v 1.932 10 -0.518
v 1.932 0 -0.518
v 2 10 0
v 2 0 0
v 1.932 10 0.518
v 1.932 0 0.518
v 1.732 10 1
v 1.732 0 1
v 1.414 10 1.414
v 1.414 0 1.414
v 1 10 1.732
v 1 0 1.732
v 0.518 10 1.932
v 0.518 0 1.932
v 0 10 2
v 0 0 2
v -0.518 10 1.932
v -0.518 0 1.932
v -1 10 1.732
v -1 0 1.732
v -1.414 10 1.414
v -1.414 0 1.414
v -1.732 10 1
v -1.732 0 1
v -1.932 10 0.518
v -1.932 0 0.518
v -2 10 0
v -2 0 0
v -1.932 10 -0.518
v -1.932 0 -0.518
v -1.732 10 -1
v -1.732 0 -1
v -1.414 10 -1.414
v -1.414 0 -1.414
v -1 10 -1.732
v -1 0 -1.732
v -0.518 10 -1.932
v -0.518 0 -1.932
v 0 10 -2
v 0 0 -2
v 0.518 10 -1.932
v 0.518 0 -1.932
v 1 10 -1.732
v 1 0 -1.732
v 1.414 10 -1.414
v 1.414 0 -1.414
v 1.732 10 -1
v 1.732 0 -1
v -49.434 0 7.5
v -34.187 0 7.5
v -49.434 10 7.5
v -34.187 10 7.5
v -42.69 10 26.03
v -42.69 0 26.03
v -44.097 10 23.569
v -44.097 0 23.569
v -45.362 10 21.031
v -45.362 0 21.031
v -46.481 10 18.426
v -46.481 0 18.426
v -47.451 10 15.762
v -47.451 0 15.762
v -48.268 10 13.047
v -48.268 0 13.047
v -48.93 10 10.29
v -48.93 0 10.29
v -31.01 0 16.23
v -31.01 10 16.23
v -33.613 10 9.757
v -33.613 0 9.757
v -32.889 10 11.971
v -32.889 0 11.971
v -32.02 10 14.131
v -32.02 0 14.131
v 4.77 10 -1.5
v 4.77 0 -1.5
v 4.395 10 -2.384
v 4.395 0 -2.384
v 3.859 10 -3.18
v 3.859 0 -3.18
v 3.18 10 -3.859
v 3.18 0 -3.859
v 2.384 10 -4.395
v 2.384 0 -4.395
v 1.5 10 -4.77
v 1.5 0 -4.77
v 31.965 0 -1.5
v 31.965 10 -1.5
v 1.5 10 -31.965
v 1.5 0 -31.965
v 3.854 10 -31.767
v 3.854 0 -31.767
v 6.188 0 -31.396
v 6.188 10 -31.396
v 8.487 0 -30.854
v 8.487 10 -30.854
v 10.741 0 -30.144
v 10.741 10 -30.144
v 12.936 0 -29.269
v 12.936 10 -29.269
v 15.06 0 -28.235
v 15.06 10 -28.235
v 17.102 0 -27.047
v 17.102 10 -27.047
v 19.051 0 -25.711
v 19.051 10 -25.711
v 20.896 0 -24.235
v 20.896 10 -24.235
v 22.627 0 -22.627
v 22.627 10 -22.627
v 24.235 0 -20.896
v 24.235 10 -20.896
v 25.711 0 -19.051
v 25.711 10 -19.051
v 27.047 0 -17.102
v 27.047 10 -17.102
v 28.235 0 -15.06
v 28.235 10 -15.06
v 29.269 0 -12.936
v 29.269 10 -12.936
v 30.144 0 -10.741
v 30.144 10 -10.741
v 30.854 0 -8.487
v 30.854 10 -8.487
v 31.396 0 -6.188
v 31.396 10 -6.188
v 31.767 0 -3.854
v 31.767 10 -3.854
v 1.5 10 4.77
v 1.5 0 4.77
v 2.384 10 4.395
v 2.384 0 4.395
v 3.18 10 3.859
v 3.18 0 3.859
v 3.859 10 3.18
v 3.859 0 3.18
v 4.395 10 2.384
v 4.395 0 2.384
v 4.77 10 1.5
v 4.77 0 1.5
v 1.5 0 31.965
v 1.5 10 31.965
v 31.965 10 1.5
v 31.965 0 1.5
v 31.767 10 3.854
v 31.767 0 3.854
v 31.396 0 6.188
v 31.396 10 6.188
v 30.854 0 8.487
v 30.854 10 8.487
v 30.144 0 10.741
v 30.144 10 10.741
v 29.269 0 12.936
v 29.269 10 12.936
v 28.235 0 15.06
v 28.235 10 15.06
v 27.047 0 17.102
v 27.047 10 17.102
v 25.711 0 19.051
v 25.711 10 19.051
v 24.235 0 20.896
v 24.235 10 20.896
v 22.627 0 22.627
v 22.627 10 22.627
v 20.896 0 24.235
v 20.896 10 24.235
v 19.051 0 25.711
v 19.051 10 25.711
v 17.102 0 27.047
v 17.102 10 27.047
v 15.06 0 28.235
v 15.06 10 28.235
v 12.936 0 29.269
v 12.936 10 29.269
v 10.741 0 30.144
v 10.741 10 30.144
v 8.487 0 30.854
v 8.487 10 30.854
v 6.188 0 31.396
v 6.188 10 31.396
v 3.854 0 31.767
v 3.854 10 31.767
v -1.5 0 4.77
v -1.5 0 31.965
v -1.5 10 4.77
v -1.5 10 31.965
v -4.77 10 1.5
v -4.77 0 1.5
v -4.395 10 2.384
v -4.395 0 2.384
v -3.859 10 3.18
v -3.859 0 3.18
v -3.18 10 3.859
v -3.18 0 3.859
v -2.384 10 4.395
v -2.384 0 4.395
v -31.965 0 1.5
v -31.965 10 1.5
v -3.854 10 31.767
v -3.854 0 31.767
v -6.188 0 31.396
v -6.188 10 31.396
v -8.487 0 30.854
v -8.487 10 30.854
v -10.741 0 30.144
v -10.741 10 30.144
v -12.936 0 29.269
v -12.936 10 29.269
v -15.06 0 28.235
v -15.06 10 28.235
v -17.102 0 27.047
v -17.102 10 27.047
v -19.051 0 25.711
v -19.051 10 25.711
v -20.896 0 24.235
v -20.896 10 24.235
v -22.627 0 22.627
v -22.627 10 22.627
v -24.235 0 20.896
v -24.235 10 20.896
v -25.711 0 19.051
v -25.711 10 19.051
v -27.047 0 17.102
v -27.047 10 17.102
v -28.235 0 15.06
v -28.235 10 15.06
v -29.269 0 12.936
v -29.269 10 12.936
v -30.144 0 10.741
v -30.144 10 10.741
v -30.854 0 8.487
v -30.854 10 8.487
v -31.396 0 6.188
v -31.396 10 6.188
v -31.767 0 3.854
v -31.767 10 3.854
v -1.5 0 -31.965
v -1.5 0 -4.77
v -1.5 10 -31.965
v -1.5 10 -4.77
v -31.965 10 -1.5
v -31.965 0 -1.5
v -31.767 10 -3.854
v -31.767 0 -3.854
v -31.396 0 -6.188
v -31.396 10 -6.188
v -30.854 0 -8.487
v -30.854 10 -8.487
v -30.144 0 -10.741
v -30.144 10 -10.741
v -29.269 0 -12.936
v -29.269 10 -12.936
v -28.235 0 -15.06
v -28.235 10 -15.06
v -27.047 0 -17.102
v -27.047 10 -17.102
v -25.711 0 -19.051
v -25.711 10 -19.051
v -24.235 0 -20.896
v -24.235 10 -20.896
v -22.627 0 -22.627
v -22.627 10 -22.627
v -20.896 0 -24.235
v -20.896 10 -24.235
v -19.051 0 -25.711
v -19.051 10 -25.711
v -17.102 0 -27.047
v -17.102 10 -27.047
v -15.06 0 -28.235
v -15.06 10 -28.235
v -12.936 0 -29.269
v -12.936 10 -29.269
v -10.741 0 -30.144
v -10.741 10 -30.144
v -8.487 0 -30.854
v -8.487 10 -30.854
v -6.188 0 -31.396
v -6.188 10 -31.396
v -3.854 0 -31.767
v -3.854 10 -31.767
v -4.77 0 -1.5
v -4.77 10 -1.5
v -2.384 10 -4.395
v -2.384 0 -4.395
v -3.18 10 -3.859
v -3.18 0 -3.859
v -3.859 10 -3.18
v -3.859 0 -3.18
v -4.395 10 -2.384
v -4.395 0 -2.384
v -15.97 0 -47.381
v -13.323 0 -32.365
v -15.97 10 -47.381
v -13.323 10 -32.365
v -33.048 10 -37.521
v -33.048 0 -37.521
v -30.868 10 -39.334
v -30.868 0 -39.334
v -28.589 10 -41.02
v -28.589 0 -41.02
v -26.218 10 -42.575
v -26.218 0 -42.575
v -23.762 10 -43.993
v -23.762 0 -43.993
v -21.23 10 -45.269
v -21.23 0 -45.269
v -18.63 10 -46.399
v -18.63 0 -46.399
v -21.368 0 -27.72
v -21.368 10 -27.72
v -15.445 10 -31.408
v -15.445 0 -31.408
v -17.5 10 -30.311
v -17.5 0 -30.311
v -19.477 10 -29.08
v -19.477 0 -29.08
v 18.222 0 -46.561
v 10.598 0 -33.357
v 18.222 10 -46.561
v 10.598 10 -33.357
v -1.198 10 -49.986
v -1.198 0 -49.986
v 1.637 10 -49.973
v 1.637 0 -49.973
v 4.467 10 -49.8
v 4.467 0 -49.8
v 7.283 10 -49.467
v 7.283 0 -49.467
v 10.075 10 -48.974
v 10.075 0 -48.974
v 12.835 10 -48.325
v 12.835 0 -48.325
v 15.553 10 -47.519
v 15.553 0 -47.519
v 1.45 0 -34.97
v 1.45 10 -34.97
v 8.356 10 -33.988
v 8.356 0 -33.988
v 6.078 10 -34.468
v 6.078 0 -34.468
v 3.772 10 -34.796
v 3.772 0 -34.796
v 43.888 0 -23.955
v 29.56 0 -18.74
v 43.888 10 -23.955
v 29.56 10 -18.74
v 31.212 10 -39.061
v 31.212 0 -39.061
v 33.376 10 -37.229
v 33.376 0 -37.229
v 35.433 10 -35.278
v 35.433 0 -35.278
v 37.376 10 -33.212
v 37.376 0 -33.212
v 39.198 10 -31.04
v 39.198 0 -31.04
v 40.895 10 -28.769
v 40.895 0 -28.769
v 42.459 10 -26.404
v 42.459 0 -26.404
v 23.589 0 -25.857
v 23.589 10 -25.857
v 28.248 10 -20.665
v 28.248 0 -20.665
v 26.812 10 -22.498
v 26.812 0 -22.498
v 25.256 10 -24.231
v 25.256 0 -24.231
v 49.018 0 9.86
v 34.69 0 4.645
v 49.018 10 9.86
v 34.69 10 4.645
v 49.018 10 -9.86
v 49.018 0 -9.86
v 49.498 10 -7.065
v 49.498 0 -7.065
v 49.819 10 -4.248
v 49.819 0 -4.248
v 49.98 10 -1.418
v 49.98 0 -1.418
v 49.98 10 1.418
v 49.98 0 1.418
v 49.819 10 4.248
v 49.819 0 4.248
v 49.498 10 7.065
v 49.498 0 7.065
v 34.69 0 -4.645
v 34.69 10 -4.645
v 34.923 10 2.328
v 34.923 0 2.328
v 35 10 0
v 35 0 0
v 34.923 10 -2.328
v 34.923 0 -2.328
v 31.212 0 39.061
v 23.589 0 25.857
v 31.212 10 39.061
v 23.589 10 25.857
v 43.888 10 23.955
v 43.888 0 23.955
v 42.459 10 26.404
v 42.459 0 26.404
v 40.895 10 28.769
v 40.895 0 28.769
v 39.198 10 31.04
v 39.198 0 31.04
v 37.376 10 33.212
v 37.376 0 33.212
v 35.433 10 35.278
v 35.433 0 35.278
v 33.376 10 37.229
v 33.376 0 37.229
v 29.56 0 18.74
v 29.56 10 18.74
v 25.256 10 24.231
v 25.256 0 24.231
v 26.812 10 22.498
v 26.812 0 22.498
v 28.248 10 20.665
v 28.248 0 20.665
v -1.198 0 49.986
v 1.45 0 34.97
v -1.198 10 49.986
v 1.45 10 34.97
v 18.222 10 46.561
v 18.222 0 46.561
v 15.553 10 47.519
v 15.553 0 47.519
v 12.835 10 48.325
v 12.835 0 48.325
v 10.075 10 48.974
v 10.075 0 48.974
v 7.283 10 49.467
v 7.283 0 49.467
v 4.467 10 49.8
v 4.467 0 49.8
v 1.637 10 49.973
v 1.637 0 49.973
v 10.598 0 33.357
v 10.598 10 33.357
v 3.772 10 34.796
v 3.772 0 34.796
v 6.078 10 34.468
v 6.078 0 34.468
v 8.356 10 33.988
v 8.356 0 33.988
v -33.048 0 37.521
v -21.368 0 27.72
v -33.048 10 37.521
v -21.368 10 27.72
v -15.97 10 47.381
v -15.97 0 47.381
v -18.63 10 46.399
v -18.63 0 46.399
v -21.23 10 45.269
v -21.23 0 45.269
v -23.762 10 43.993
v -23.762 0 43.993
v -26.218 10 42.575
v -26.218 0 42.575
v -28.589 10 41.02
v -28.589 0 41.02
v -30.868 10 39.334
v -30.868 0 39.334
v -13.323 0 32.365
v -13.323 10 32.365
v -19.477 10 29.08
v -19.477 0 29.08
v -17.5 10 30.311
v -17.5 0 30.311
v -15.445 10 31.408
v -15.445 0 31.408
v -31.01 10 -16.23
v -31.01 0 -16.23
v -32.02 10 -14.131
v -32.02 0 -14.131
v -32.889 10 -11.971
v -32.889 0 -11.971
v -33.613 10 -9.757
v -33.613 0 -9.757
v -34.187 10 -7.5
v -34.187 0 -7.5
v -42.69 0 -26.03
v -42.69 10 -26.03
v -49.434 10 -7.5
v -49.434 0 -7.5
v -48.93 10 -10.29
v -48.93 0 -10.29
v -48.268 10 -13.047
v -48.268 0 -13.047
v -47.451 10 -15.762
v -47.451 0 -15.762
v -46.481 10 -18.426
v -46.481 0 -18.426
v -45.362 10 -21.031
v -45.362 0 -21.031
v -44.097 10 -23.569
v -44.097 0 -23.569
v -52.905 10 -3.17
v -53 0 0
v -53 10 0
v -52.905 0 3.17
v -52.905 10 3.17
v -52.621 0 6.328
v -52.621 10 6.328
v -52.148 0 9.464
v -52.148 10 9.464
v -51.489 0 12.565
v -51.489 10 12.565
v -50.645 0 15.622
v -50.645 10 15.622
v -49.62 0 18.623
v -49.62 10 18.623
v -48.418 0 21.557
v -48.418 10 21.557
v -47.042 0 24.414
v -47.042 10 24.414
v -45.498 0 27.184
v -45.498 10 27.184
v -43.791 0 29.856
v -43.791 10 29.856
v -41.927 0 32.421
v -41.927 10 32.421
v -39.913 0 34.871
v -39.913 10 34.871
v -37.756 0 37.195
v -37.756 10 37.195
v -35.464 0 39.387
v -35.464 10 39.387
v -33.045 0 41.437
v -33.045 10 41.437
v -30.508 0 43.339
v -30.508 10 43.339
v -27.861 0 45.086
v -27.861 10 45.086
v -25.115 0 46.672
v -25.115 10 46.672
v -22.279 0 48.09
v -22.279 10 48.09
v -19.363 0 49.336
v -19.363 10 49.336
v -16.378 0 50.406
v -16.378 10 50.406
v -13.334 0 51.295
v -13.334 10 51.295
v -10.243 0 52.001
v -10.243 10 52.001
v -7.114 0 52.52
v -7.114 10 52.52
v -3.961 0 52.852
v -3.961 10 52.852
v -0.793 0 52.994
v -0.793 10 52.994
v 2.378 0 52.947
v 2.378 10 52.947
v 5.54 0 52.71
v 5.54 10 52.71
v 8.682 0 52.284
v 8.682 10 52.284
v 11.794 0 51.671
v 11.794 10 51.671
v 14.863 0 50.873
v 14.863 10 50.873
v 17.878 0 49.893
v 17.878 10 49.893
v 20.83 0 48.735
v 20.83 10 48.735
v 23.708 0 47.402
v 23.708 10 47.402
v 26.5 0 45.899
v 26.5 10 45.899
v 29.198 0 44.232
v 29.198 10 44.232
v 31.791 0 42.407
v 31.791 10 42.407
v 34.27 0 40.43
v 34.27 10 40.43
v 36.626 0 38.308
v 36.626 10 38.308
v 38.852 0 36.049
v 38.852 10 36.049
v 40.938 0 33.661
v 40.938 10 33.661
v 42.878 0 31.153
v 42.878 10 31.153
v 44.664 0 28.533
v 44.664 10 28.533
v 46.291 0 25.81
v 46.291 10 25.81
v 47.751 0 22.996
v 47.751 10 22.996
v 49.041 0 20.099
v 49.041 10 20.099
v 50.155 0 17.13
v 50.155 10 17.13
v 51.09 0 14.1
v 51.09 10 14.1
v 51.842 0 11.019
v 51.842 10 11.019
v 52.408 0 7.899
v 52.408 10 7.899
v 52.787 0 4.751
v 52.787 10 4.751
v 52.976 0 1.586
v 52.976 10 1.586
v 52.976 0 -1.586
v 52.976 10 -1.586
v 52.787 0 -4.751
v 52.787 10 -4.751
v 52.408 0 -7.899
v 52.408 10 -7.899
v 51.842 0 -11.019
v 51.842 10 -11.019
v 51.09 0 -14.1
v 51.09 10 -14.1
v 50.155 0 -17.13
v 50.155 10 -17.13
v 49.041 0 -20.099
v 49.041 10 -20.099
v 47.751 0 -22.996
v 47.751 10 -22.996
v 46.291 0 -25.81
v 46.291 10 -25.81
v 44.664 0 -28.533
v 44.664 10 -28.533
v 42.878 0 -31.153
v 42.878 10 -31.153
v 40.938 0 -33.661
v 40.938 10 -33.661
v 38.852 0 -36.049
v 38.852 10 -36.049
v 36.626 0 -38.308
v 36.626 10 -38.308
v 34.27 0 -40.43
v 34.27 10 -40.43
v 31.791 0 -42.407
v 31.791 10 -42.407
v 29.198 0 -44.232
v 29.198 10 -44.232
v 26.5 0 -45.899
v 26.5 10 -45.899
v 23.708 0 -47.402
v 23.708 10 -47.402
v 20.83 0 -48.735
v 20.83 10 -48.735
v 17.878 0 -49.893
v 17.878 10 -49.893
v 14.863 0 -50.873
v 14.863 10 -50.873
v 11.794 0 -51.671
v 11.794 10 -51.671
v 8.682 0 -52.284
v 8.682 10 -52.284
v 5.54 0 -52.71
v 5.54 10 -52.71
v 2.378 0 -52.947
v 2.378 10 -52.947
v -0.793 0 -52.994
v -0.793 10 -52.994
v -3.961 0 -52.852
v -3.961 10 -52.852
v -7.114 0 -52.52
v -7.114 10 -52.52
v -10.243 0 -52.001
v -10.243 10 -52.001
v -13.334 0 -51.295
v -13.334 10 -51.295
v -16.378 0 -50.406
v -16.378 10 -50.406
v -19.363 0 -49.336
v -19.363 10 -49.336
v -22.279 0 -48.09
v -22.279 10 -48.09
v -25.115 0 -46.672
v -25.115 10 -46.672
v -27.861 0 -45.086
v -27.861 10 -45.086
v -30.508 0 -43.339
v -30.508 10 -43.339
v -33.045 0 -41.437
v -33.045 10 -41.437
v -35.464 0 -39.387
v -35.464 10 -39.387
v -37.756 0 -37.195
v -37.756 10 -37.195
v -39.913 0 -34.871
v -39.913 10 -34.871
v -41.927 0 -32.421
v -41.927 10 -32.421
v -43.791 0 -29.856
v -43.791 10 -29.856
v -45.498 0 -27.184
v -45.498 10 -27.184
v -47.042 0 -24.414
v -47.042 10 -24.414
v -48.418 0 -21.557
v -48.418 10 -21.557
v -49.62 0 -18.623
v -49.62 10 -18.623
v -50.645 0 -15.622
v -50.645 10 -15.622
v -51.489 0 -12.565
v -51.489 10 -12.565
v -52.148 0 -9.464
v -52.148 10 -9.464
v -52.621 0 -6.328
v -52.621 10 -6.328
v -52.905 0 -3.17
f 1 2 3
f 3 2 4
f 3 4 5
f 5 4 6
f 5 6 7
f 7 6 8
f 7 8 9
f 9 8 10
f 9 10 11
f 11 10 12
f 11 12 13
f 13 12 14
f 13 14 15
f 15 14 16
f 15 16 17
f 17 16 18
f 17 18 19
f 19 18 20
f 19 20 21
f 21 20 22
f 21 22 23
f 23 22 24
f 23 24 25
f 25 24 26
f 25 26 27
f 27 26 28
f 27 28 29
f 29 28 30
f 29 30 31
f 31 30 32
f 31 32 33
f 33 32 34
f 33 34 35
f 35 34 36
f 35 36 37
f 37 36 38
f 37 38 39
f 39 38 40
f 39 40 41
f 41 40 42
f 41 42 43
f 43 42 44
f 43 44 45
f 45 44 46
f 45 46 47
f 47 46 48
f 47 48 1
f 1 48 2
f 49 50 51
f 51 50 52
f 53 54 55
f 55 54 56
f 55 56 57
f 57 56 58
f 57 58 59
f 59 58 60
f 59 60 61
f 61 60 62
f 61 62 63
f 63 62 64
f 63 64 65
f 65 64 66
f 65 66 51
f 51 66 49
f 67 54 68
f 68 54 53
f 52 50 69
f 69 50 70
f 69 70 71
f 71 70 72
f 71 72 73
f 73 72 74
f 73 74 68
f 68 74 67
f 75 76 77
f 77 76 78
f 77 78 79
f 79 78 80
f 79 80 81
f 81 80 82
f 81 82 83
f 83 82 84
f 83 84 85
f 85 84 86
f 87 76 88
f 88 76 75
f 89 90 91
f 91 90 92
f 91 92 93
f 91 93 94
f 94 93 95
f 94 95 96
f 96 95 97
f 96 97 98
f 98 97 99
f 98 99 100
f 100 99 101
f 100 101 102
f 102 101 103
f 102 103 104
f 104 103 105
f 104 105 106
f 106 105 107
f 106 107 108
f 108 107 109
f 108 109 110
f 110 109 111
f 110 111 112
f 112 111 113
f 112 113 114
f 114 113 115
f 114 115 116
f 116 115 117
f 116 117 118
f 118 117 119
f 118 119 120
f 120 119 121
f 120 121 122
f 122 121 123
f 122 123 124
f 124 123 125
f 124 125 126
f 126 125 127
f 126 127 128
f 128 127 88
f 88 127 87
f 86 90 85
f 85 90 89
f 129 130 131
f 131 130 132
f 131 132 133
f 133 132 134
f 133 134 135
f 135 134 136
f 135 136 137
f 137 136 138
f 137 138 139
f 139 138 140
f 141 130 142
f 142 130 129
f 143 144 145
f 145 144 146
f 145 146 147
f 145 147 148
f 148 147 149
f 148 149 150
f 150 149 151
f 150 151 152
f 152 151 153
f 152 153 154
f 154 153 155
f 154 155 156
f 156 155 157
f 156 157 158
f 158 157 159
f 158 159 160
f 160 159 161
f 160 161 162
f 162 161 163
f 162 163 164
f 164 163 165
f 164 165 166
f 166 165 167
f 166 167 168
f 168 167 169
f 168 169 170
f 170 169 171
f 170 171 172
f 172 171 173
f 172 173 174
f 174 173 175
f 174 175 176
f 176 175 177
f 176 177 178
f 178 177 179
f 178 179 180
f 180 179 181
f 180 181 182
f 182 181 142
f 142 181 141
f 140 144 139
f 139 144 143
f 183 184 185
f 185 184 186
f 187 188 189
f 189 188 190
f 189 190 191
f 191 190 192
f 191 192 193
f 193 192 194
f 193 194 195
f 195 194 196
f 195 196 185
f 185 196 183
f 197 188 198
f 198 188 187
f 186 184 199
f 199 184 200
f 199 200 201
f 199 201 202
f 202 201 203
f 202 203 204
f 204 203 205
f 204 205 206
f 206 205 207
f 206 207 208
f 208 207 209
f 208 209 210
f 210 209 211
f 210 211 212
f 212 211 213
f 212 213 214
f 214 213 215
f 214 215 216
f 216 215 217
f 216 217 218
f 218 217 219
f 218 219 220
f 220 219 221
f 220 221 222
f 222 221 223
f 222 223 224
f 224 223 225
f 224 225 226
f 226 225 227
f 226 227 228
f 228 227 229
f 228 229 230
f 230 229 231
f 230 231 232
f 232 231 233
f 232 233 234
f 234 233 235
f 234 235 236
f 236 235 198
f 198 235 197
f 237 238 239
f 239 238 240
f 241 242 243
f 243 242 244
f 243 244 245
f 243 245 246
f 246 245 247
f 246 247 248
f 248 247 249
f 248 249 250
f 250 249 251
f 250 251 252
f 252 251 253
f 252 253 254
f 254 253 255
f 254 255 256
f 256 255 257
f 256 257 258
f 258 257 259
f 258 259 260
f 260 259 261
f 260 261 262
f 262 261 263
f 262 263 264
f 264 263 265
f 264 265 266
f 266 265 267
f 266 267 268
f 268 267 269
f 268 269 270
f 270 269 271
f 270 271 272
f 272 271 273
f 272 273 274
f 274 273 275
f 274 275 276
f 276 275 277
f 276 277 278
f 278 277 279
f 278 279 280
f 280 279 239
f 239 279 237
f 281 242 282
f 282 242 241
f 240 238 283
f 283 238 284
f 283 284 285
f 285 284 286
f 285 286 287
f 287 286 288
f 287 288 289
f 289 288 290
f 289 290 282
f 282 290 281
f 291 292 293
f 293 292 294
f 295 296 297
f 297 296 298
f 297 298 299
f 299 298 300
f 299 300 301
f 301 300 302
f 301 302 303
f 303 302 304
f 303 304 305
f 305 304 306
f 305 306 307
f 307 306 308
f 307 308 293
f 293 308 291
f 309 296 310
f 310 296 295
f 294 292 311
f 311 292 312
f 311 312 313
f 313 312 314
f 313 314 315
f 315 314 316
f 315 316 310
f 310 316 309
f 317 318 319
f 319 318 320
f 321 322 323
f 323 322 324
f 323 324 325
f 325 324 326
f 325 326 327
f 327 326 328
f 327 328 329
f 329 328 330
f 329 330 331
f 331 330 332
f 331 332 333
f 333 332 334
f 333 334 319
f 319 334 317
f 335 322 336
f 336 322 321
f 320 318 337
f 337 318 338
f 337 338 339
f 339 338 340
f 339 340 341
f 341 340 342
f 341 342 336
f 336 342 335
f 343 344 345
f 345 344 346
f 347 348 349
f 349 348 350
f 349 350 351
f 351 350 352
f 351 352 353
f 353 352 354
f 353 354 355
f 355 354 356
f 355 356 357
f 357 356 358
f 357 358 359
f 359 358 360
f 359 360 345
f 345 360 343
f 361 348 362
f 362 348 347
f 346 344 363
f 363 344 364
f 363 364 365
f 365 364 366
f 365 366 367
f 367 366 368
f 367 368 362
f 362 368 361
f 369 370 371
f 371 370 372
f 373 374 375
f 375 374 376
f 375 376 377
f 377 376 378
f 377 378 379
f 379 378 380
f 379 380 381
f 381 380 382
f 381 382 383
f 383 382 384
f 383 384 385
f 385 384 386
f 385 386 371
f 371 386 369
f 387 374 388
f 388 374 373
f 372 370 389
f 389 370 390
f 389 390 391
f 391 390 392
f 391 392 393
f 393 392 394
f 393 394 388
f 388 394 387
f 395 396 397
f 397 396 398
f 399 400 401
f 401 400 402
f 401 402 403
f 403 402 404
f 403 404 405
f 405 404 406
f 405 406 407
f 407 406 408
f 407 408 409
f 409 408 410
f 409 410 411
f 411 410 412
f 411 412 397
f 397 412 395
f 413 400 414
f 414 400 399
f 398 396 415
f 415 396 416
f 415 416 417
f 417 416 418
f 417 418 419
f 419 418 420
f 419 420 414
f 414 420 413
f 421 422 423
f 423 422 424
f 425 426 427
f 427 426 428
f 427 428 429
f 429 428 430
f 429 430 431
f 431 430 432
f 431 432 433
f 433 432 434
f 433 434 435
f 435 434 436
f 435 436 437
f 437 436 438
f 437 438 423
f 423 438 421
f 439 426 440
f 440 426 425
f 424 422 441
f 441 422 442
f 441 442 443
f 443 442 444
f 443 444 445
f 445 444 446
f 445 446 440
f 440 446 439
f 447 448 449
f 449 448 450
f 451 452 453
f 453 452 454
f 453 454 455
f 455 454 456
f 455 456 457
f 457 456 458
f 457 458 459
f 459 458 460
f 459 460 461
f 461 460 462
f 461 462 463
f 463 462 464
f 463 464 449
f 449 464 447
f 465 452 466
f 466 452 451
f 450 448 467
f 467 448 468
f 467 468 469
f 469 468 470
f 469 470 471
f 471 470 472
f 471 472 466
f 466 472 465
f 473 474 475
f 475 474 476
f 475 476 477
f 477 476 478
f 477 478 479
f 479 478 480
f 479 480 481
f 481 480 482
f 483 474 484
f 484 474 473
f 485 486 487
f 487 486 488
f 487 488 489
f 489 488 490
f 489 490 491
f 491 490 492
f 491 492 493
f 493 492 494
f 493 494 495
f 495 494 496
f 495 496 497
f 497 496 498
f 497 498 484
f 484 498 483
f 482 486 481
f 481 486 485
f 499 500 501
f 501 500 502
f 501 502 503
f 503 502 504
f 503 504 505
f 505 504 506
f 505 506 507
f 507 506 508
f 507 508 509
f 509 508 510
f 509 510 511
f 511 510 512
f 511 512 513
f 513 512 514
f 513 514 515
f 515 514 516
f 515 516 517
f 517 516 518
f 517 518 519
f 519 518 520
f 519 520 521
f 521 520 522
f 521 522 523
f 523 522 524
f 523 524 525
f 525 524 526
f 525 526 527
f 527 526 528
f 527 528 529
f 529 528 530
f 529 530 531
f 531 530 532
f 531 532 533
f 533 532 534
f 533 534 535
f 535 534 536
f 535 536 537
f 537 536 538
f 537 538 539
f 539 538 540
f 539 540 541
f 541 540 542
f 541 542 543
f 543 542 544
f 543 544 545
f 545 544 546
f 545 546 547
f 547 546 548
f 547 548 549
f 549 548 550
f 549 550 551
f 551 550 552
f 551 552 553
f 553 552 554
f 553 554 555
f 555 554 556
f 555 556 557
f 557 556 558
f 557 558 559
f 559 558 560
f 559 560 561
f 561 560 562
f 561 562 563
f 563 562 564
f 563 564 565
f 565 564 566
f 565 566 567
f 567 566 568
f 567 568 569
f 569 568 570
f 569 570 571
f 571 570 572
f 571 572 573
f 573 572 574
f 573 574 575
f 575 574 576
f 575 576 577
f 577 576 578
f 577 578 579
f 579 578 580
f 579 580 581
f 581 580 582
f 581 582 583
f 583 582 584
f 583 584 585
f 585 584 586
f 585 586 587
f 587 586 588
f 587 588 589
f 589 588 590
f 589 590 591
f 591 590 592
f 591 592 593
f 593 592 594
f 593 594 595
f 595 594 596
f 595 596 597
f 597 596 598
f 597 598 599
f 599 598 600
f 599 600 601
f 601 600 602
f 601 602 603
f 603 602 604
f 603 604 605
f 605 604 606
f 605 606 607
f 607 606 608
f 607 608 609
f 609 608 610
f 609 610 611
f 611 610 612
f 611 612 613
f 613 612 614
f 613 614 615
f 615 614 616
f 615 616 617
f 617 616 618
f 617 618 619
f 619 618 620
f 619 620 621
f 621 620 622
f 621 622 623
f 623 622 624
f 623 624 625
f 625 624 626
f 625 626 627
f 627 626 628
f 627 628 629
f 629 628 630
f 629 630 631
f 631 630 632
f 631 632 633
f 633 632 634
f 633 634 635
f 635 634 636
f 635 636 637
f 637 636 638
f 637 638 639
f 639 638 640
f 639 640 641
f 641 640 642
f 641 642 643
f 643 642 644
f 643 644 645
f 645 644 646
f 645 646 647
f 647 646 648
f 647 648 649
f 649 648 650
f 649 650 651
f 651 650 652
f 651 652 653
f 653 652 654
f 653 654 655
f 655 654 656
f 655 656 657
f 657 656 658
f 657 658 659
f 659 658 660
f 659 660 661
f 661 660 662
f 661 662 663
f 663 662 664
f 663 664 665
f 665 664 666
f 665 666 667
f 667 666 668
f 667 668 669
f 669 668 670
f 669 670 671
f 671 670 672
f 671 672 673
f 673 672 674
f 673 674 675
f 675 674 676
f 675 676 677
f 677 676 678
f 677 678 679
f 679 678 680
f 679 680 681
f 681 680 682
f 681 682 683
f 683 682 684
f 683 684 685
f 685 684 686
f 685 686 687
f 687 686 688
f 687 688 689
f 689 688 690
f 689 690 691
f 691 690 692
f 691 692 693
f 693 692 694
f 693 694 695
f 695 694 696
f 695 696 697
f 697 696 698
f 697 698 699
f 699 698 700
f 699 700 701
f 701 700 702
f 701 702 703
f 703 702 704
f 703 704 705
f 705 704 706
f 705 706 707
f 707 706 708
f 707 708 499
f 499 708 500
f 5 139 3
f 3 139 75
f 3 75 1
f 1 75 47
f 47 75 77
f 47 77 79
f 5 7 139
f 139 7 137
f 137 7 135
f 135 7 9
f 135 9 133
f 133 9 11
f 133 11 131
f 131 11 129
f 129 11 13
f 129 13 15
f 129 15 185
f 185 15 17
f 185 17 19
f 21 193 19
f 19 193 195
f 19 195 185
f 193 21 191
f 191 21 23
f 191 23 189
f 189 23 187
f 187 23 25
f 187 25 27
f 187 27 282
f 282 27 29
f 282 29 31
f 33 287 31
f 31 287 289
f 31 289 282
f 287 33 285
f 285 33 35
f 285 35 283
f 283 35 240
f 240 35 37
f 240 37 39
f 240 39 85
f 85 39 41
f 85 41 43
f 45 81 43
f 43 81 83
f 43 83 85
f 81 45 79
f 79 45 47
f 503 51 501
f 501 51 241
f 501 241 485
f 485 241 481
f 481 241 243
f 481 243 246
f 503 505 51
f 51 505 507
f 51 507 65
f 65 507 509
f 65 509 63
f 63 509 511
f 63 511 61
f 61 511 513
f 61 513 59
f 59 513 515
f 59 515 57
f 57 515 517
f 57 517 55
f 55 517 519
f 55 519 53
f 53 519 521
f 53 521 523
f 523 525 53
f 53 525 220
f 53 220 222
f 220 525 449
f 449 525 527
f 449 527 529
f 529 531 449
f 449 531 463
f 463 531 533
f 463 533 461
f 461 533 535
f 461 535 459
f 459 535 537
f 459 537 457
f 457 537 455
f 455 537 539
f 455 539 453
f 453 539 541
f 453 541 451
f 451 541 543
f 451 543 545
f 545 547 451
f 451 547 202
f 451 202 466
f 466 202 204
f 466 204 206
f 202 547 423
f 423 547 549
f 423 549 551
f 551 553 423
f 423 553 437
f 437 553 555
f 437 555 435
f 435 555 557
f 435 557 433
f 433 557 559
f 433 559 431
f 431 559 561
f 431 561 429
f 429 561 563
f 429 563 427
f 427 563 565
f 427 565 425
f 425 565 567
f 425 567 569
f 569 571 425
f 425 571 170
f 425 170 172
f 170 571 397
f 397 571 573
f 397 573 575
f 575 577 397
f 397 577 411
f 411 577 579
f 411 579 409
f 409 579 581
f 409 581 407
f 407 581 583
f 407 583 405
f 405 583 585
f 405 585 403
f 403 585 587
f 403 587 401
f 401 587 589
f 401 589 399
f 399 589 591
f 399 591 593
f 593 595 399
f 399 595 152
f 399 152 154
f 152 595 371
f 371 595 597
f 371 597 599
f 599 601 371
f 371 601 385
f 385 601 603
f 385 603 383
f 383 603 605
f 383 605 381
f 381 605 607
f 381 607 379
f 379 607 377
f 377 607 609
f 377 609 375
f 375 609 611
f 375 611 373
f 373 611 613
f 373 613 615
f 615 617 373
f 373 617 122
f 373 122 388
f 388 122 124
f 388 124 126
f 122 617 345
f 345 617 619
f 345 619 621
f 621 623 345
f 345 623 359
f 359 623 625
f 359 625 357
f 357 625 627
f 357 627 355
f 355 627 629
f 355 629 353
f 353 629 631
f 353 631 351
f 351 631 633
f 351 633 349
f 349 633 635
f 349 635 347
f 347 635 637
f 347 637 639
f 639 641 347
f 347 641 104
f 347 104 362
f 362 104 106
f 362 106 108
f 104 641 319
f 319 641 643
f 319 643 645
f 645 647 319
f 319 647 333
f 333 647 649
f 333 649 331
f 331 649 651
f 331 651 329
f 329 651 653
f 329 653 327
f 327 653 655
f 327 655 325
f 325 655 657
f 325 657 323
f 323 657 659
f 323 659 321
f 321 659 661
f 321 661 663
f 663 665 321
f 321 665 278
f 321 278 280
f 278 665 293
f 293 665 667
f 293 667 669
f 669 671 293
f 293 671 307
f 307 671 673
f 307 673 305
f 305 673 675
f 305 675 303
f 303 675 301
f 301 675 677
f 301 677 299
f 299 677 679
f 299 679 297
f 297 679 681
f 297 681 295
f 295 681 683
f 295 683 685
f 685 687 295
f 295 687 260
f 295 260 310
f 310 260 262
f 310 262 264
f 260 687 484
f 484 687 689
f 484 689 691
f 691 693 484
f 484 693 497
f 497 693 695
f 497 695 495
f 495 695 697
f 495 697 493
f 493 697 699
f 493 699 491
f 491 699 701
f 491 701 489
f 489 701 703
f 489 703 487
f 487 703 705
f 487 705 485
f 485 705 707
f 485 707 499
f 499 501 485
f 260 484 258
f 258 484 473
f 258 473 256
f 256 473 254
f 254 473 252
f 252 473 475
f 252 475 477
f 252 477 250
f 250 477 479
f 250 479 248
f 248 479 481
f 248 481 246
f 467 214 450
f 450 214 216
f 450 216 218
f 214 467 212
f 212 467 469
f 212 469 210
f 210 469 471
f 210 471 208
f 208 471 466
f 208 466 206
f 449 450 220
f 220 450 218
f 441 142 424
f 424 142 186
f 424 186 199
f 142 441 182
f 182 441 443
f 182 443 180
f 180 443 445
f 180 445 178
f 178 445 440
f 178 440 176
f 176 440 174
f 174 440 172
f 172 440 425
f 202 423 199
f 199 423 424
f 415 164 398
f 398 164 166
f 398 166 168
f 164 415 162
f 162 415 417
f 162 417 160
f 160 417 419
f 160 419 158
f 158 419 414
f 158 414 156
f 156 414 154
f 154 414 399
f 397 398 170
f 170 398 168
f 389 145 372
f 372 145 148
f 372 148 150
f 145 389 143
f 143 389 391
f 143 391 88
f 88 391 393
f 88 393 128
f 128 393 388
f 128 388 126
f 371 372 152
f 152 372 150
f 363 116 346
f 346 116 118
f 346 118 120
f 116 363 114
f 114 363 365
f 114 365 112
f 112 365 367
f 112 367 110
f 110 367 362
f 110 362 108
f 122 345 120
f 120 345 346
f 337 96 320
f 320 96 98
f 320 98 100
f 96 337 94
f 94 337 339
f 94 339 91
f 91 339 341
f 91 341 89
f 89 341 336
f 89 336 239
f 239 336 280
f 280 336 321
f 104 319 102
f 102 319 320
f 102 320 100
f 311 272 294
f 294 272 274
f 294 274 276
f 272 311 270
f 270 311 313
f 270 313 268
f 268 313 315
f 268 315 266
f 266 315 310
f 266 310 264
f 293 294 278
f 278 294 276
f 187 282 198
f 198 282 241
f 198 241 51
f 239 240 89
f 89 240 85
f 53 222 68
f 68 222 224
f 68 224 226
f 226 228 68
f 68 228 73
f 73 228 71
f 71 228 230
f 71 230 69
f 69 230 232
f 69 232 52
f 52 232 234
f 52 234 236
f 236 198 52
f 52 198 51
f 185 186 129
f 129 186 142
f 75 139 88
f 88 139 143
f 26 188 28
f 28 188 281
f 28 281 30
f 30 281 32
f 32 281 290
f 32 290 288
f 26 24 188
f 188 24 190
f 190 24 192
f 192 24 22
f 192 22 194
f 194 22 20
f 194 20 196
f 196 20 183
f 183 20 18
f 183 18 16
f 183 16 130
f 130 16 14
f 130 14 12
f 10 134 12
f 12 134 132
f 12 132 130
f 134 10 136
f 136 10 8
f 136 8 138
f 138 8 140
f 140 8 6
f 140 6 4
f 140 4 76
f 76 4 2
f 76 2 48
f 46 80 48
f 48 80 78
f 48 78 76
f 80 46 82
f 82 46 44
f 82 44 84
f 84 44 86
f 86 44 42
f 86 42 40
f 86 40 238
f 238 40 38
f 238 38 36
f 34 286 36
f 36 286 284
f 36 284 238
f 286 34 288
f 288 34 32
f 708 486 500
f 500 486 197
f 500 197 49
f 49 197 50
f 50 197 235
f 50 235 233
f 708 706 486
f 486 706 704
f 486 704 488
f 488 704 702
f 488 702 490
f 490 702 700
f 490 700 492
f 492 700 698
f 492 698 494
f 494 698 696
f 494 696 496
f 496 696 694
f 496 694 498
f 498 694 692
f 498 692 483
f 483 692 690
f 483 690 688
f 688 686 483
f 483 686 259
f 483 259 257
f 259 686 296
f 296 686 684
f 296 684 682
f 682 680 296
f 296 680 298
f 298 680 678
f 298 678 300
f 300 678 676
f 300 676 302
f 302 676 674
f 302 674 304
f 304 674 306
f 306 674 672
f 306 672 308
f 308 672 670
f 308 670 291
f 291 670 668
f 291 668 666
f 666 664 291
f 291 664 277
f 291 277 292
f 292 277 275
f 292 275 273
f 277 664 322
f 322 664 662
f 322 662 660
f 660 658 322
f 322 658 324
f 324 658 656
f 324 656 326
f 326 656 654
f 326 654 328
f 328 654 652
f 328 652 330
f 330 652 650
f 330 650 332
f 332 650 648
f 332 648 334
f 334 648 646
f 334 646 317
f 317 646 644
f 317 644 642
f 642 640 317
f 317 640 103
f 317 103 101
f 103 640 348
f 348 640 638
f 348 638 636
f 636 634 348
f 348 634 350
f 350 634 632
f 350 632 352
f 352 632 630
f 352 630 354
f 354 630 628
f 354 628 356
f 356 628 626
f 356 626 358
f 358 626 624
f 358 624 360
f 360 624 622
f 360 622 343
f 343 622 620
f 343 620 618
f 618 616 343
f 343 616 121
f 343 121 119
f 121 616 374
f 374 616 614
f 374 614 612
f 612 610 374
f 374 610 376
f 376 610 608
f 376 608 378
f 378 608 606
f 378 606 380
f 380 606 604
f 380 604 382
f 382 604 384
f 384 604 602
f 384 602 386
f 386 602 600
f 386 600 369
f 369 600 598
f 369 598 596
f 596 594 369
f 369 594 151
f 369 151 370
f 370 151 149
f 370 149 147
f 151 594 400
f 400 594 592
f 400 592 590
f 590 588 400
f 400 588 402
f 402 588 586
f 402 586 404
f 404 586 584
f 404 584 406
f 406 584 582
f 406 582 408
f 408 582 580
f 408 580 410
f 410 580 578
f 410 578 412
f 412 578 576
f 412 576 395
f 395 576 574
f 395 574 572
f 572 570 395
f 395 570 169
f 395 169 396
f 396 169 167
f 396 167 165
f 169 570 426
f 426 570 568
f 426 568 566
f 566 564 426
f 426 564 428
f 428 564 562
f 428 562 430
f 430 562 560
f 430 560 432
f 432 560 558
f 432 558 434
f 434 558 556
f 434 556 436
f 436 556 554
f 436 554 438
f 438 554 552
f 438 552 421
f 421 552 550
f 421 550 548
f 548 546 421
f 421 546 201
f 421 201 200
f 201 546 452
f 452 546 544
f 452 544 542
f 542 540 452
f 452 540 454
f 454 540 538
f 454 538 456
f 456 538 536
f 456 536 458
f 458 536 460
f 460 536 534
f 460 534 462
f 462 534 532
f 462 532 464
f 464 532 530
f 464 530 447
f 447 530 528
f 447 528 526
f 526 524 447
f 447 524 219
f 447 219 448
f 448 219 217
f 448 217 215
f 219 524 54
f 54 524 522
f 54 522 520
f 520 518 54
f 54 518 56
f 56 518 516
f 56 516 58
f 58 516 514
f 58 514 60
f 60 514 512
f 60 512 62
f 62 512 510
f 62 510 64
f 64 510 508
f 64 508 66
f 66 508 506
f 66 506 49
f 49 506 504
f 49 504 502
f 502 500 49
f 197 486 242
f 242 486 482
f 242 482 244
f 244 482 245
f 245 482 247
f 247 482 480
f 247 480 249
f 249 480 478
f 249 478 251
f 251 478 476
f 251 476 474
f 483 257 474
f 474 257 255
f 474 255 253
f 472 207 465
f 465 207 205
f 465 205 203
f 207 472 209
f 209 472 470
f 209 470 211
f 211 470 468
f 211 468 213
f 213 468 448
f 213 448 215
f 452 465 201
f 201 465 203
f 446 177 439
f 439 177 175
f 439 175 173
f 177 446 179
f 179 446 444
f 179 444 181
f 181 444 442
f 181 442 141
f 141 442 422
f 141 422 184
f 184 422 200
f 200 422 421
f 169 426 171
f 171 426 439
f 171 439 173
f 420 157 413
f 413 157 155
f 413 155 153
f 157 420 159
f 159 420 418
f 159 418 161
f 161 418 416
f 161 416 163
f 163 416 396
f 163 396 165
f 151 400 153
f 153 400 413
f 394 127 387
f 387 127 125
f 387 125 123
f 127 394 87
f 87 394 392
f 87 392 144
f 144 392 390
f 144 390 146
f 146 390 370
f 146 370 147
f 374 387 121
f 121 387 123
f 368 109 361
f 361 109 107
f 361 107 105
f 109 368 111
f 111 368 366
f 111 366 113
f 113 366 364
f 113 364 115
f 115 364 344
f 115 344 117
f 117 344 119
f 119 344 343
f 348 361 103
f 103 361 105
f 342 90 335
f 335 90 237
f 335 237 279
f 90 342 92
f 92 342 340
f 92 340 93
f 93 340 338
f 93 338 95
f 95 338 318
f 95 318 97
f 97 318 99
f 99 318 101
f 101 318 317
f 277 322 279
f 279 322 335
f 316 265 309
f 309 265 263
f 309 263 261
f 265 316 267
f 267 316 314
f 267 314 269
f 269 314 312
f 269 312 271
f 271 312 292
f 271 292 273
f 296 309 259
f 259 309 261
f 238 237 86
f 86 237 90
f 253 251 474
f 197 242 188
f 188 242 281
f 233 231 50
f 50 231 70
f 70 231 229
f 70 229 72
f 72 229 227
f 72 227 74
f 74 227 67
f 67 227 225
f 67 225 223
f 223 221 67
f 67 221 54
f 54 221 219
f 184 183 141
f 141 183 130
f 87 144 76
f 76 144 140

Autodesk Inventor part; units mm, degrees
ref_plane "YZ Plane" through (0, 0, 0) normal (1, 0, 0) x (0, 1, 0)
ref_plane "XZ Plane" through (0, 0, 0) normal (0, 1, 0) x (-1, 0, 0)
ref_plane "XY Plane" through (0, 0, 0) normal (0, 0, 1) x (1, 0, 0)
sketch "Sketch1" plane through (0, 0, 0) normal (0, 1, 0) x (-1, 0, 0)
  circle A0 centre (0, 0) radius 50
  circle A1 centre (0, 0) radius 35
  line L0 (49.4343, 7.5) -> (34.187, 7.5)
  line L1 (49.4343, -7.5) -> (34.187, -7.5)
  line L2 (41.8106, 7.5) -> (41.8106, -7.5) construction
  circle A2 centre (0, 0) radius 32
  line L3 (34.187, 7.5) -> (34.187, -7.5)
  line L4 (49.4343, 7.5) -> (49.4343, -7.5)
  line L5 (21.3678, 27.7203) -> (31.0097, 16.2296)
  line L6 (42.6898, 26.0304) -> (31.0097, 16.2296)
  line L7 (33.048, 37.5211) -> (42.6898, 26.0304)
  line L8 (33.048, 37.5211) -> (21.3678, 27.7203)
  line L9 (-1.4496, 34.97) -> (13.3226, 32.3652)
  line L10 (15.9702, 47.3809) -> (13.3226, 32.3652)
  line L11 (1.1981, 49.9856) -> (15.9702, 47.3809)
  line L12 (1.1981, 49.9856) -> (-1.4496, 34.97)
  line L13 (-23.5887, 25.8568) -> (-10.5983, 33.3568)
  line L14 (-18.222, 46.5614) -> (-10.5983, 33.3568)
  line L15 (-31.2123, 39.0614) -> (-18.222, 46.5614)
  line L16 (-31.2123, 39.0614) -> (-23.5887, 25.8568)
  line L17 (-34.6904, 4.6449) -> (-29.5601, 18.7403)
  line L18 (-43.8879, 23.9552) -> (-29.5601, 18.7403)
  line L19 (-49.0182, 9.8598) -> (-43.8879, 23.9552)
  line L20 (-49.0182, 9.8598) -> (-34.6904, 4.6449)
  line L21 (-29.5601, -18.7403) -> (-34.6904, -4.6449)
  line L22 (-49.0182, -9.8598) -> (-34.6904, -4.6449)
  line L23 (-43.8879, -23.9552) -> (-49.0182, -9.8598)
  line L24 (-43.8879, -23.9552) -> (-29.5601, -18.7403)
  line L25 (-10.5983, -33.3568) -> (-23.5887, -25.8568)
  line L26 (-31.2123, -39.0614) -> (-23.5887, -25.8568)
  line L27 (-18.222, -46.5614) -> (-31.2123, -39.0614)
  line L28 (-18.222, -46.5614) -> (-10.5983, -33.3568)
  line L29 (13.3226, -32.3652) -> (-1.4496, -34.97)
  line L30 (1.1981, -49.9856) -> (-1.4496, -34.97)
  line L31 (15.9702, -47.3809) -> (1.1981, -49.9856)
  line L32 (15.9702, -47.3809) -> (13.3226, -32.3652)
  line L33 (31.0097, -16.2296) -> (21.3678, -27.7203)
  line L34 (33.048, -37.5211) -> (21.3678, -27.7203)
  line L35 (42.6898, -26.0304) -> (33.048, -37.5211)
  line L36 (42.6898, -26.0304) -> (31.0097, -16.2296)
  circle A3 centre (0, 0) radius 53
  circle A4 centre (0, 0) radius 2
  circle A5 centre (0, 0) radius 5
  line L37 (1.5, -31.9648) -> (1.5, -4.7697)
  line L38 (-1.5, -31.9648) -> (-1.5, -4.7697)
  line L39 (1.5, -18.3673) -> (-1.5, -18.3673) construction
  line L40 (-31.9648, -1.5) -> (-4.7697, -1.5)
  line L41 (-4.7697, 1.5) -> (-31.9648, 1.5)
  line L42 (1.5, 31.9648) -> (1.5, 4.7697)
  line L43 (-1.5, 4.7697) -> (-1.5, 31.9648)
  line L44 (4.7697, -1.5) -> (31.9648, -1.5)
  line L45 (4.7697, 1.5) -> (31.9648, 1.5)
  line L46 (18.3673, -1.5) -> (18.3673, 1.5) construction
  line L47 (-1.5, 18.3673) -> (1.5, 18.3673) construction
  line L48 (-18.3673, 1.5) -> (-18.3673, -1.5) construction
  point P0 (41.8106, 0)
  point P1 (36.8497, 21.13)
  point P2 (27.2079, 32.6207)
  point P3 (14.6464, 39.8731)
  point P4 (-0.1257, 42.4778)
  point P5 (-14.4101, 39.9591)
  point P6 (-27.4005, 32.4591)
  point P7 (-36.724, 21.3478)
  point P8 (-41.8543, 7.2524)
  point P9 (-41.8543, -7.2524)
  point P10 (-36.724, -21.3478)
  point P11 (-27.4005, -32.4591)
  point P12 (-14.4101, -39.9591)
  point P13 (-0.1257, -42.4778)
  point P14 (14.6464, -39.8731)
  point P15 (27.2079, -32.6207)
  point P16 (36.8497, -21.13)
  point P17 (0, -18.3673)
  point P18 (-34.6904, -4.6449)
  dimension "d0" = 100
  dimension "d1" = 15
  dimension "d2" = 15
  dimension "d3" = 3
  dimension "d6" = 360
  dimension "d8" = 3
  dimension "d9" = 4
  dimension "d11" = 3
  dimension "d12" = 3
  dimension "d13" = 3
  dimension "d14" = 3
extrude "Extrusion1" add sketch "Sketch1" along normal blind 10 contours A0 L4 | L4 L1 A1 L0 | L7 A0 | L6 A1 L8 L7 | L3 A1 L33 L29 L25 L21 L17 L13 L9 L5 | A1 L3 | A0 L35 | L35 L34 A1 L36 | L5 A1 | A1 L33 | L11 A0 | L10 A1 L12 L11 | A0 L31 | L31 L30 A1 L32 | L9 A1 | A1 L29 | L15 A0 | L14 A1 L16 L15 | A0 L27 | L27 L26 A1 L28 | L13 A1 | A1 L25 | L19 A0 | L18 A1 L20 L19 | A0 L23 | L23 L22 A1 L24 | L17 A1 | A1 L21 | A2 L44 A5 L45 | L42 A5 L43 A2 | A5 | A2 L38 A5 L37 | L41 A5 L40 A2 | A3 | A4
hole "Hole1" at (0, 0, 0) direction (0, 1, 0) diameter 4 end through all
properties part number "Rueda_SENSORVEL_3DPrint"
